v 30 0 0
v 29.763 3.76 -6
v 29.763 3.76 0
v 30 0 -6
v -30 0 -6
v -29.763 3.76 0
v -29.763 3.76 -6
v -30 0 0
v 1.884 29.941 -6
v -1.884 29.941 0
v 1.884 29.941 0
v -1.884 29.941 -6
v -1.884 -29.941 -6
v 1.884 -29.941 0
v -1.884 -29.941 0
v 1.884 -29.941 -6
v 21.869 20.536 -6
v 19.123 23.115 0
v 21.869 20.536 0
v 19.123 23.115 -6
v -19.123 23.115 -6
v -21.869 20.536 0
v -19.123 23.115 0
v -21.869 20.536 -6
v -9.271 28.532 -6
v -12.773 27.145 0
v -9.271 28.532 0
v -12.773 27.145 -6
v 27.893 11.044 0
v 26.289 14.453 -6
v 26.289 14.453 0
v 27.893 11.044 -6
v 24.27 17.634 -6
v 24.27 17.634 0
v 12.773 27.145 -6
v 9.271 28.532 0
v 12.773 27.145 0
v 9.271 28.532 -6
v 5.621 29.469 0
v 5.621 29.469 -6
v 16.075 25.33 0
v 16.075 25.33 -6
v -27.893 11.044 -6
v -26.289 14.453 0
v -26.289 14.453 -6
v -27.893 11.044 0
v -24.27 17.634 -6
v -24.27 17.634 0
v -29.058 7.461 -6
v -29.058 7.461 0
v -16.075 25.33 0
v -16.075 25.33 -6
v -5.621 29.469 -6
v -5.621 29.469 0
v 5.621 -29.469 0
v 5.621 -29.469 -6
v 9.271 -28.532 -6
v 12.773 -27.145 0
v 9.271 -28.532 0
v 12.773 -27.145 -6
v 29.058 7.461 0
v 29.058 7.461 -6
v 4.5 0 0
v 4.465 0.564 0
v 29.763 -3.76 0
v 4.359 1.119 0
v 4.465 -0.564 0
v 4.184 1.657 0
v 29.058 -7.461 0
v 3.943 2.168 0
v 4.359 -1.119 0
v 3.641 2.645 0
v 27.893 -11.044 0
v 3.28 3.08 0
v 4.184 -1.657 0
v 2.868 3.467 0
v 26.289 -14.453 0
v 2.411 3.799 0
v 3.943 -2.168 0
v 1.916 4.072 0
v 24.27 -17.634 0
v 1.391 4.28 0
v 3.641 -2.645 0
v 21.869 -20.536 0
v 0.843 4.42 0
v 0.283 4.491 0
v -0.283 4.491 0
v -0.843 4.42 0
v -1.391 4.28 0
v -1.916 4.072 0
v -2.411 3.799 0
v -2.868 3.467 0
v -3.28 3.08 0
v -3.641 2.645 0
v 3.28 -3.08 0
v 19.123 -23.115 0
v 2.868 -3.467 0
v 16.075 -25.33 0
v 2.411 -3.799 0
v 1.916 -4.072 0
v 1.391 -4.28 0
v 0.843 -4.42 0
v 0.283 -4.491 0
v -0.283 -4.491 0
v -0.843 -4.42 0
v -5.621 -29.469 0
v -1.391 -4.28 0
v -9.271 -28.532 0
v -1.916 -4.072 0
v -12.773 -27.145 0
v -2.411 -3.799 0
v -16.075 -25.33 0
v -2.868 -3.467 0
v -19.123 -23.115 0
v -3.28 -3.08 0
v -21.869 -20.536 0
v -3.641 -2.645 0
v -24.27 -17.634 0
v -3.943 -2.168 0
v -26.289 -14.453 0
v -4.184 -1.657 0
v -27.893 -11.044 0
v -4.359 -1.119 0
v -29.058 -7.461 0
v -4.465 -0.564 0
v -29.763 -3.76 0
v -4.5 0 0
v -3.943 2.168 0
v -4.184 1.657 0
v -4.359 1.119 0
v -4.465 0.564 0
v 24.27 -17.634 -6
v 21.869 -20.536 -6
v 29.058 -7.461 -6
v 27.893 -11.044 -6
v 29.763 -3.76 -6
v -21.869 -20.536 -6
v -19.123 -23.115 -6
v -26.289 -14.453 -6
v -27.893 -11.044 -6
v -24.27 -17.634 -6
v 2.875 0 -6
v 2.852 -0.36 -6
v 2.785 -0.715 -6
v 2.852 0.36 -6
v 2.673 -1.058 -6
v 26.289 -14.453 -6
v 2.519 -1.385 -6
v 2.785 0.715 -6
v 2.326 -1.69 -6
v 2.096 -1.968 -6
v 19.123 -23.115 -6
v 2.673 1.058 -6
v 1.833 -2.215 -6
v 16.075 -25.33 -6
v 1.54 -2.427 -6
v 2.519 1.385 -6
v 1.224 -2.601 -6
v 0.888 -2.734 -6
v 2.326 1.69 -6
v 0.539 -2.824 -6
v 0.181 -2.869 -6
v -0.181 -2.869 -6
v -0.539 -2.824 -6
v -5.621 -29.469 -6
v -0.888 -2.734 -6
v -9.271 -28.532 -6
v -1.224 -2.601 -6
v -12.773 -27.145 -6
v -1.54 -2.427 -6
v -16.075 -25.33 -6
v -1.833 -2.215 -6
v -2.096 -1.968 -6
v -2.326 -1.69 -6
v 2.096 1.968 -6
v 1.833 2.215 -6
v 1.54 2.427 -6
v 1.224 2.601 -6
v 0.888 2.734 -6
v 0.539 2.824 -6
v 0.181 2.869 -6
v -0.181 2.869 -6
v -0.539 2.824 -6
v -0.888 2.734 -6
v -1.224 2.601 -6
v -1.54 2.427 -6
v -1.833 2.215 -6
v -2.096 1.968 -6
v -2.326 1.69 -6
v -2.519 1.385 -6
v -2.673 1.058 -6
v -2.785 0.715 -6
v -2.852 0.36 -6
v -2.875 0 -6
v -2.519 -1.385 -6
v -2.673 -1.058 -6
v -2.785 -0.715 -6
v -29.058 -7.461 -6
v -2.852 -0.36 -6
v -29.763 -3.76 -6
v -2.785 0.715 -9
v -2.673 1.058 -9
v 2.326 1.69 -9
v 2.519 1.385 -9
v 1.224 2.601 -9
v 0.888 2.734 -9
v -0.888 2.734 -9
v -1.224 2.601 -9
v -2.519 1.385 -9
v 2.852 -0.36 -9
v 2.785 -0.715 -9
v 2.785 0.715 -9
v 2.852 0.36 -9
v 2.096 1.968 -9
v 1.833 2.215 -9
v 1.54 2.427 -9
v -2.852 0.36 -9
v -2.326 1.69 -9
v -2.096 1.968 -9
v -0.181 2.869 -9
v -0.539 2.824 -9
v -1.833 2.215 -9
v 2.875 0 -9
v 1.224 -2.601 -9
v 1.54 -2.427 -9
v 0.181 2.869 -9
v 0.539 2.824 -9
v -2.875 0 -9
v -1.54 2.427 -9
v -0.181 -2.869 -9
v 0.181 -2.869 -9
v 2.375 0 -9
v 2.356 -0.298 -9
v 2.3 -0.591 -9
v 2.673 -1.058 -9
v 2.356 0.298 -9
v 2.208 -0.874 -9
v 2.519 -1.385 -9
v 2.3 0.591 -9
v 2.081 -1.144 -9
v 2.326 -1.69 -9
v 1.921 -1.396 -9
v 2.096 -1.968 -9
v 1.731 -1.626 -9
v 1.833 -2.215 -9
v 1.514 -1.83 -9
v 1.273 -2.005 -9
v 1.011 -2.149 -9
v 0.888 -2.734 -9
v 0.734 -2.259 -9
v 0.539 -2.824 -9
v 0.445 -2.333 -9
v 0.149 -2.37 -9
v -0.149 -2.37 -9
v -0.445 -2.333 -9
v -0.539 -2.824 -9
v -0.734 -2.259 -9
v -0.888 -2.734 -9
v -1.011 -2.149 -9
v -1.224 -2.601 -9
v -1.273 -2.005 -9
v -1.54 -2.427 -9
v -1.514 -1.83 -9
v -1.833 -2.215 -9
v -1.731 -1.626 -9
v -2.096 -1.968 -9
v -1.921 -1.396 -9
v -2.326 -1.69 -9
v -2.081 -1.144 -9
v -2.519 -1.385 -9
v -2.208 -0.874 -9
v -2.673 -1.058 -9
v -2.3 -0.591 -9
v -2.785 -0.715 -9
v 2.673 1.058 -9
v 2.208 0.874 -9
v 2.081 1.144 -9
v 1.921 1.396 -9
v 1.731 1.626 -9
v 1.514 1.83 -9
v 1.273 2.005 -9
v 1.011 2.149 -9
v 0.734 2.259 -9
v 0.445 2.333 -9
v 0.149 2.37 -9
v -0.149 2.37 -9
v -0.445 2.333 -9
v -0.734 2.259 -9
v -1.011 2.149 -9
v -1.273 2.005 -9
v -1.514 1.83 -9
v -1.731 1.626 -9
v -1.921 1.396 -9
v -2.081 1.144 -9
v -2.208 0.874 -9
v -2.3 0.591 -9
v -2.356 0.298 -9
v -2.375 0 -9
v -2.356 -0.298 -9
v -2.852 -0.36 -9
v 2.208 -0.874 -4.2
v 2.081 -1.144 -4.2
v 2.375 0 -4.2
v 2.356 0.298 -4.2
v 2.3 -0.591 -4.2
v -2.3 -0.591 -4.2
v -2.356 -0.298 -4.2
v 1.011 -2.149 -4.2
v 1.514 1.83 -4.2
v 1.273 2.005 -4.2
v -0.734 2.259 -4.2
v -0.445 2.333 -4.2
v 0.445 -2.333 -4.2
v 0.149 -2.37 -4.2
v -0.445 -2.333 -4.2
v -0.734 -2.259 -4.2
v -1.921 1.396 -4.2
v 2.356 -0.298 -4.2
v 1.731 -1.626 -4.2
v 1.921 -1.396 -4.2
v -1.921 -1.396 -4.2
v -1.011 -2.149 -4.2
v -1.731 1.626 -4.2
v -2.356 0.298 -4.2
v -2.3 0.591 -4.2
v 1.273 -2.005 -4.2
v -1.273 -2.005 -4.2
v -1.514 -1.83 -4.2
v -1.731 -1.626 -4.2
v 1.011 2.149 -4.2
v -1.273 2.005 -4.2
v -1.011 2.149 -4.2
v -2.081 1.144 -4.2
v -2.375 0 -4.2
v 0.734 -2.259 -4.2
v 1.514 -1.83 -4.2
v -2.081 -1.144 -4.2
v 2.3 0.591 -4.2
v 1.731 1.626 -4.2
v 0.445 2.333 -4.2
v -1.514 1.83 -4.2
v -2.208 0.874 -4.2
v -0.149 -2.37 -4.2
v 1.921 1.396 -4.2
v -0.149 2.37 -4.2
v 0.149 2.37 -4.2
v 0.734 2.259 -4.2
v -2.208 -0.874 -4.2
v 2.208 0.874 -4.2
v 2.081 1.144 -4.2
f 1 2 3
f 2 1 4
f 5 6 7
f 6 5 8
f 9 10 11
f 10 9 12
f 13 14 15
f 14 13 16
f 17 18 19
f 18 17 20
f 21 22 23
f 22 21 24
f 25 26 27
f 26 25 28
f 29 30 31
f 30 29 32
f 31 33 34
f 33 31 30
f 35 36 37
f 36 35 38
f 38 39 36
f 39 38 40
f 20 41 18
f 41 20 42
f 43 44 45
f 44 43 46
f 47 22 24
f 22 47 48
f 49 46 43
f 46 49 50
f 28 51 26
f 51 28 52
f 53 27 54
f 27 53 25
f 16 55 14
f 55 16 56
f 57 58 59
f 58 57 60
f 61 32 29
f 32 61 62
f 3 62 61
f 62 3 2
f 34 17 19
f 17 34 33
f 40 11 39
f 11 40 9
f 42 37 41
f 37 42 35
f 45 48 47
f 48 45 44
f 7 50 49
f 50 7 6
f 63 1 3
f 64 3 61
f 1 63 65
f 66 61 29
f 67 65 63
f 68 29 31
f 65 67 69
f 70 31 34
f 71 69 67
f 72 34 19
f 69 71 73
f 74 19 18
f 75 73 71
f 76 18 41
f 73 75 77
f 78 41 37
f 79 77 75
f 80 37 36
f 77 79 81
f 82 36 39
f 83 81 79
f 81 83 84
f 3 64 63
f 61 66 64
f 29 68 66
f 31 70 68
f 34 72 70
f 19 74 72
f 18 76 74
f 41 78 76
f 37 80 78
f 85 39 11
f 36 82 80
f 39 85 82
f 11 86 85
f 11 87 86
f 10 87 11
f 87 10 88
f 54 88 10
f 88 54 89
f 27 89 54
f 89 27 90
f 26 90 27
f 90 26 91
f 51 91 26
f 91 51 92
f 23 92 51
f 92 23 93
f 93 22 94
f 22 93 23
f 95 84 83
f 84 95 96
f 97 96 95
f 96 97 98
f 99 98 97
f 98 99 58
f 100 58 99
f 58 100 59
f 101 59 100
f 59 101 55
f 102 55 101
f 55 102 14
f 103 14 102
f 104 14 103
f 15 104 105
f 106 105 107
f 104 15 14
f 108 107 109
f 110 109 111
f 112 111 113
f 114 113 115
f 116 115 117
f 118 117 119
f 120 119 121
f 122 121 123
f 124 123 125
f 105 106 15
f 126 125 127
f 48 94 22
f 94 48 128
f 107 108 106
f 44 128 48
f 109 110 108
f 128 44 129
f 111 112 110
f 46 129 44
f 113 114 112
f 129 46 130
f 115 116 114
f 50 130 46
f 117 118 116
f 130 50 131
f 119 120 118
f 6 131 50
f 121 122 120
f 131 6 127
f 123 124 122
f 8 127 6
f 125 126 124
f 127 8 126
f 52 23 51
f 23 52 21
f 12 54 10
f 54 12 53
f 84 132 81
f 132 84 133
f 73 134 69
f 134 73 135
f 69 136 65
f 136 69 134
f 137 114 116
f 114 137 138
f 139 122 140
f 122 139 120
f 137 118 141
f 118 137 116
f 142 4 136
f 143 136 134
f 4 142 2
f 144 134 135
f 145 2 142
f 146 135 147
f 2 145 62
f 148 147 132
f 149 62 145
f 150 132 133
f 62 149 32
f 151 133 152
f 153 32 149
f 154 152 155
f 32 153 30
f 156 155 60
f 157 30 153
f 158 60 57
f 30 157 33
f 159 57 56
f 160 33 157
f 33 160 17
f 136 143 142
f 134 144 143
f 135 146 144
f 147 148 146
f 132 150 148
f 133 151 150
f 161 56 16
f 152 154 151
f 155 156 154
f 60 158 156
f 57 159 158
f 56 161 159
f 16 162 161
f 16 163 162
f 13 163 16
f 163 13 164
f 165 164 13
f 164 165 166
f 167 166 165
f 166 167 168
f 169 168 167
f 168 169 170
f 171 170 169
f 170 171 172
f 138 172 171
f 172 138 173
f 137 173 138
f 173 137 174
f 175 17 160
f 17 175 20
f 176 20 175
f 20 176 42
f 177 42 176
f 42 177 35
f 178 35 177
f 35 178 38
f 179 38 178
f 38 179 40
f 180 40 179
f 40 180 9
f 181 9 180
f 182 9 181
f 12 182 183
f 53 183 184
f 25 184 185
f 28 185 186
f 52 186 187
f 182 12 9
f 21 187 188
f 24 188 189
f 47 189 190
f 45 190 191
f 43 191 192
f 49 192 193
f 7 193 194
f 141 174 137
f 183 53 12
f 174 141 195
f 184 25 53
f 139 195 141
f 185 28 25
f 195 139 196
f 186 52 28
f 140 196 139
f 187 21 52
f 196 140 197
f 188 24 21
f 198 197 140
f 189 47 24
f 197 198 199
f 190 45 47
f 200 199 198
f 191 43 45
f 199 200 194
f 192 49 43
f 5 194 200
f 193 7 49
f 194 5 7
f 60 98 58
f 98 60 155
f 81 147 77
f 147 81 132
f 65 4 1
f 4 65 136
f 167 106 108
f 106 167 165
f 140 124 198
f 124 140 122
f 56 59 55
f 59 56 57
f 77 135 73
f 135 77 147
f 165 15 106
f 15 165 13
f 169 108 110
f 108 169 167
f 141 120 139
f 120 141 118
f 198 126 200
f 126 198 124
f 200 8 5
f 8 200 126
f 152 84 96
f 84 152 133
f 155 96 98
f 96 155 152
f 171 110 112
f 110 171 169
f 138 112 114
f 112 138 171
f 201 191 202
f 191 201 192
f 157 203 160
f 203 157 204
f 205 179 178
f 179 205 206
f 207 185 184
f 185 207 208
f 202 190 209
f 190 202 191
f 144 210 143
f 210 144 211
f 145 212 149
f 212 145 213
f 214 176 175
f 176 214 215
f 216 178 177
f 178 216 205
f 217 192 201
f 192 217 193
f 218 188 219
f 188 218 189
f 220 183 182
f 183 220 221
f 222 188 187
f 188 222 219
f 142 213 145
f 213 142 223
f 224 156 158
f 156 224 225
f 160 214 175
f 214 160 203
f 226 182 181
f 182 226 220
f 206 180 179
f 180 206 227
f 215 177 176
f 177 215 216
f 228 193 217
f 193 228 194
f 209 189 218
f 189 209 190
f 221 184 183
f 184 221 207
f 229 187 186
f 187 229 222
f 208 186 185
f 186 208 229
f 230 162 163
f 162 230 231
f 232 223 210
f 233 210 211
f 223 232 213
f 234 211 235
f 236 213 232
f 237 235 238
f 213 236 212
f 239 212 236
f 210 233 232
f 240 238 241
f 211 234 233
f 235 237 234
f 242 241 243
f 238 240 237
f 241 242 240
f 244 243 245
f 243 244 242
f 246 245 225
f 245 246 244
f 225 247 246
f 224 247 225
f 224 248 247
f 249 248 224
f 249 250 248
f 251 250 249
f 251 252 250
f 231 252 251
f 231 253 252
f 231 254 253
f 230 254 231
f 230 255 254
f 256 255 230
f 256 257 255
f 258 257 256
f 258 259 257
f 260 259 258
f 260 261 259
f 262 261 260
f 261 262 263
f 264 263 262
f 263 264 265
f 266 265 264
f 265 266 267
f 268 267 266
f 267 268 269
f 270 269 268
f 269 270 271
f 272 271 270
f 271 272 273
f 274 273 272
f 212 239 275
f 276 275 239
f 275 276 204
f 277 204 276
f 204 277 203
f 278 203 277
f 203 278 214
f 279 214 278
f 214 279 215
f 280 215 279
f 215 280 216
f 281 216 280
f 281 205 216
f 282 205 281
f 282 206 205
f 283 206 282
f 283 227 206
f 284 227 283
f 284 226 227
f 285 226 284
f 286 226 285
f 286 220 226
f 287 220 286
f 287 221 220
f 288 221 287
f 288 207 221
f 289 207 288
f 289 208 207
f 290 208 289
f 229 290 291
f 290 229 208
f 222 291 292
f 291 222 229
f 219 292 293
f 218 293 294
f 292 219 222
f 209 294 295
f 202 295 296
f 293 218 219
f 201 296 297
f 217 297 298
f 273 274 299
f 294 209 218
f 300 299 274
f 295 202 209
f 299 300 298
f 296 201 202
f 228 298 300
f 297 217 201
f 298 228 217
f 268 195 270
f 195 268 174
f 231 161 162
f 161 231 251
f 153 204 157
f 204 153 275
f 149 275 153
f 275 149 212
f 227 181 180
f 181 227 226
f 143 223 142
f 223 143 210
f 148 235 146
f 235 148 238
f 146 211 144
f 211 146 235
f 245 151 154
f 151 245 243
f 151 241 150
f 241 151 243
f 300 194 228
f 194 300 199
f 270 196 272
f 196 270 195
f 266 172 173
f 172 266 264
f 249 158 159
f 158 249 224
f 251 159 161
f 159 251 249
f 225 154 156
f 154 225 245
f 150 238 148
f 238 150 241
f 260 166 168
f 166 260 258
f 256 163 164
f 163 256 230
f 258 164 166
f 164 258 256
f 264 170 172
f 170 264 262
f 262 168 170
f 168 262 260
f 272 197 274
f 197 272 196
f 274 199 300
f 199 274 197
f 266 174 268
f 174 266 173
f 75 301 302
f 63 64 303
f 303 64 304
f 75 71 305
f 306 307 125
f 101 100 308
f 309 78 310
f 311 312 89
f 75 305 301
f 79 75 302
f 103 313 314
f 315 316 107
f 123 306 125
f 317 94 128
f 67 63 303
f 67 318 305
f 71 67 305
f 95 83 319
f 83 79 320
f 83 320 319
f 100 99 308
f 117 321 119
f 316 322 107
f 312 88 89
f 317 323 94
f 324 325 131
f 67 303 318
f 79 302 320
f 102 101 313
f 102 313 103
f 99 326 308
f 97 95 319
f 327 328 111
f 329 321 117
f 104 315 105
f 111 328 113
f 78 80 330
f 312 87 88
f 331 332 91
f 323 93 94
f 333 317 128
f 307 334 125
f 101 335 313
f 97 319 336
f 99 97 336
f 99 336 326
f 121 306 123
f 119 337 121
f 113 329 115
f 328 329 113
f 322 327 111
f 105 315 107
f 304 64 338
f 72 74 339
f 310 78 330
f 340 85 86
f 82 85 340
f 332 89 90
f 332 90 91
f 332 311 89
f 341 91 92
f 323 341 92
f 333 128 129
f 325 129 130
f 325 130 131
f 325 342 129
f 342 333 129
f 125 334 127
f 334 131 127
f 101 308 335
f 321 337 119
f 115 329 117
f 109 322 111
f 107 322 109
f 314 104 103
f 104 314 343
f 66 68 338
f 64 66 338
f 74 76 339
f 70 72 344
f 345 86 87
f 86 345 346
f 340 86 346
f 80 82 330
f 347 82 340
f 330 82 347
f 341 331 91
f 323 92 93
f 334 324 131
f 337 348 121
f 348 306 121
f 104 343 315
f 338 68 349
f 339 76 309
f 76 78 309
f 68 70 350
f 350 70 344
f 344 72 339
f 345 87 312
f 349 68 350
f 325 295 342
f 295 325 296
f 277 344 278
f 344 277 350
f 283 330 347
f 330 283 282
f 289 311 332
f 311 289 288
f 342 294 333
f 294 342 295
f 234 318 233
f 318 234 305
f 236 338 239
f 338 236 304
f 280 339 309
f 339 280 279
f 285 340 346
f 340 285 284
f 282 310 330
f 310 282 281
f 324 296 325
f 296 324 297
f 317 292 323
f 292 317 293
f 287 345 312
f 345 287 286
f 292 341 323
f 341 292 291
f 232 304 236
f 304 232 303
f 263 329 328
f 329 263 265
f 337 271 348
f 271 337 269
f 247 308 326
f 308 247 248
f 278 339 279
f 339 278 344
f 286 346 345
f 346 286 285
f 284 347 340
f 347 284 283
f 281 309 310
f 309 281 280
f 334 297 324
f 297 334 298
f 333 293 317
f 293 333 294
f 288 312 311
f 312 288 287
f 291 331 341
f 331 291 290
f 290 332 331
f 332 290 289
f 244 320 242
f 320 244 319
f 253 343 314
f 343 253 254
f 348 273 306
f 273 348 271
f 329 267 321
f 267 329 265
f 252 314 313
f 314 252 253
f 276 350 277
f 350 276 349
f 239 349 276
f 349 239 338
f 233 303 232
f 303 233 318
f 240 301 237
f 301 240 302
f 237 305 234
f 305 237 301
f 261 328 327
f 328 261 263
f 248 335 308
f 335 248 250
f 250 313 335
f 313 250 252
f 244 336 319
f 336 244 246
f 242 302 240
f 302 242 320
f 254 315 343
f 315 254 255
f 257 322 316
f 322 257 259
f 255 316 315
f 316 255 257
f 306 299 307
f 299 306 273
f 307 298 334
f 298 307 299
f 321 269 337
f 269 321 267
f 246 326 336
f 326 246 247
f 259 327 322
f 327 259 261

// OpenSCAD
$fn = 50;


difference() {
	union() {
		translate(v = [0, 0, -6.0000000000]) {
			cylinder(h = 6, r = 30.0000000000);
		}
		translate(v = [0, 0, -9.0000000000]) {
			cylinder(h = 9, r = 2.8750000000);
		}
	}
	union() {
		translate(v = [0, 0, 0]) {
			rotate(a = [0, 0, 0]) {
				difference() {
					union() {
						translate(v = [0, 0, -9.0000000000]) {
							cylinder(h = 9, r = 2.2500000000);
						}
						translate(v = [0, 0, -4.2000000000]) {
							cylinder(h = 4.2000000000, r1 = 2.3750000000, r2 = 4.5000000000);
						}
						translate(v = [0, 0, -9.0000000000]) {
							cylinder(h = 9, r = 2.3750000000);
						}
						translate(v = [0, 0, -9.0000000000]) {
							cylinder(h = 9, r = 2.2500000000);
						}
					}
					union();
				}
			}
		}
	}
}
